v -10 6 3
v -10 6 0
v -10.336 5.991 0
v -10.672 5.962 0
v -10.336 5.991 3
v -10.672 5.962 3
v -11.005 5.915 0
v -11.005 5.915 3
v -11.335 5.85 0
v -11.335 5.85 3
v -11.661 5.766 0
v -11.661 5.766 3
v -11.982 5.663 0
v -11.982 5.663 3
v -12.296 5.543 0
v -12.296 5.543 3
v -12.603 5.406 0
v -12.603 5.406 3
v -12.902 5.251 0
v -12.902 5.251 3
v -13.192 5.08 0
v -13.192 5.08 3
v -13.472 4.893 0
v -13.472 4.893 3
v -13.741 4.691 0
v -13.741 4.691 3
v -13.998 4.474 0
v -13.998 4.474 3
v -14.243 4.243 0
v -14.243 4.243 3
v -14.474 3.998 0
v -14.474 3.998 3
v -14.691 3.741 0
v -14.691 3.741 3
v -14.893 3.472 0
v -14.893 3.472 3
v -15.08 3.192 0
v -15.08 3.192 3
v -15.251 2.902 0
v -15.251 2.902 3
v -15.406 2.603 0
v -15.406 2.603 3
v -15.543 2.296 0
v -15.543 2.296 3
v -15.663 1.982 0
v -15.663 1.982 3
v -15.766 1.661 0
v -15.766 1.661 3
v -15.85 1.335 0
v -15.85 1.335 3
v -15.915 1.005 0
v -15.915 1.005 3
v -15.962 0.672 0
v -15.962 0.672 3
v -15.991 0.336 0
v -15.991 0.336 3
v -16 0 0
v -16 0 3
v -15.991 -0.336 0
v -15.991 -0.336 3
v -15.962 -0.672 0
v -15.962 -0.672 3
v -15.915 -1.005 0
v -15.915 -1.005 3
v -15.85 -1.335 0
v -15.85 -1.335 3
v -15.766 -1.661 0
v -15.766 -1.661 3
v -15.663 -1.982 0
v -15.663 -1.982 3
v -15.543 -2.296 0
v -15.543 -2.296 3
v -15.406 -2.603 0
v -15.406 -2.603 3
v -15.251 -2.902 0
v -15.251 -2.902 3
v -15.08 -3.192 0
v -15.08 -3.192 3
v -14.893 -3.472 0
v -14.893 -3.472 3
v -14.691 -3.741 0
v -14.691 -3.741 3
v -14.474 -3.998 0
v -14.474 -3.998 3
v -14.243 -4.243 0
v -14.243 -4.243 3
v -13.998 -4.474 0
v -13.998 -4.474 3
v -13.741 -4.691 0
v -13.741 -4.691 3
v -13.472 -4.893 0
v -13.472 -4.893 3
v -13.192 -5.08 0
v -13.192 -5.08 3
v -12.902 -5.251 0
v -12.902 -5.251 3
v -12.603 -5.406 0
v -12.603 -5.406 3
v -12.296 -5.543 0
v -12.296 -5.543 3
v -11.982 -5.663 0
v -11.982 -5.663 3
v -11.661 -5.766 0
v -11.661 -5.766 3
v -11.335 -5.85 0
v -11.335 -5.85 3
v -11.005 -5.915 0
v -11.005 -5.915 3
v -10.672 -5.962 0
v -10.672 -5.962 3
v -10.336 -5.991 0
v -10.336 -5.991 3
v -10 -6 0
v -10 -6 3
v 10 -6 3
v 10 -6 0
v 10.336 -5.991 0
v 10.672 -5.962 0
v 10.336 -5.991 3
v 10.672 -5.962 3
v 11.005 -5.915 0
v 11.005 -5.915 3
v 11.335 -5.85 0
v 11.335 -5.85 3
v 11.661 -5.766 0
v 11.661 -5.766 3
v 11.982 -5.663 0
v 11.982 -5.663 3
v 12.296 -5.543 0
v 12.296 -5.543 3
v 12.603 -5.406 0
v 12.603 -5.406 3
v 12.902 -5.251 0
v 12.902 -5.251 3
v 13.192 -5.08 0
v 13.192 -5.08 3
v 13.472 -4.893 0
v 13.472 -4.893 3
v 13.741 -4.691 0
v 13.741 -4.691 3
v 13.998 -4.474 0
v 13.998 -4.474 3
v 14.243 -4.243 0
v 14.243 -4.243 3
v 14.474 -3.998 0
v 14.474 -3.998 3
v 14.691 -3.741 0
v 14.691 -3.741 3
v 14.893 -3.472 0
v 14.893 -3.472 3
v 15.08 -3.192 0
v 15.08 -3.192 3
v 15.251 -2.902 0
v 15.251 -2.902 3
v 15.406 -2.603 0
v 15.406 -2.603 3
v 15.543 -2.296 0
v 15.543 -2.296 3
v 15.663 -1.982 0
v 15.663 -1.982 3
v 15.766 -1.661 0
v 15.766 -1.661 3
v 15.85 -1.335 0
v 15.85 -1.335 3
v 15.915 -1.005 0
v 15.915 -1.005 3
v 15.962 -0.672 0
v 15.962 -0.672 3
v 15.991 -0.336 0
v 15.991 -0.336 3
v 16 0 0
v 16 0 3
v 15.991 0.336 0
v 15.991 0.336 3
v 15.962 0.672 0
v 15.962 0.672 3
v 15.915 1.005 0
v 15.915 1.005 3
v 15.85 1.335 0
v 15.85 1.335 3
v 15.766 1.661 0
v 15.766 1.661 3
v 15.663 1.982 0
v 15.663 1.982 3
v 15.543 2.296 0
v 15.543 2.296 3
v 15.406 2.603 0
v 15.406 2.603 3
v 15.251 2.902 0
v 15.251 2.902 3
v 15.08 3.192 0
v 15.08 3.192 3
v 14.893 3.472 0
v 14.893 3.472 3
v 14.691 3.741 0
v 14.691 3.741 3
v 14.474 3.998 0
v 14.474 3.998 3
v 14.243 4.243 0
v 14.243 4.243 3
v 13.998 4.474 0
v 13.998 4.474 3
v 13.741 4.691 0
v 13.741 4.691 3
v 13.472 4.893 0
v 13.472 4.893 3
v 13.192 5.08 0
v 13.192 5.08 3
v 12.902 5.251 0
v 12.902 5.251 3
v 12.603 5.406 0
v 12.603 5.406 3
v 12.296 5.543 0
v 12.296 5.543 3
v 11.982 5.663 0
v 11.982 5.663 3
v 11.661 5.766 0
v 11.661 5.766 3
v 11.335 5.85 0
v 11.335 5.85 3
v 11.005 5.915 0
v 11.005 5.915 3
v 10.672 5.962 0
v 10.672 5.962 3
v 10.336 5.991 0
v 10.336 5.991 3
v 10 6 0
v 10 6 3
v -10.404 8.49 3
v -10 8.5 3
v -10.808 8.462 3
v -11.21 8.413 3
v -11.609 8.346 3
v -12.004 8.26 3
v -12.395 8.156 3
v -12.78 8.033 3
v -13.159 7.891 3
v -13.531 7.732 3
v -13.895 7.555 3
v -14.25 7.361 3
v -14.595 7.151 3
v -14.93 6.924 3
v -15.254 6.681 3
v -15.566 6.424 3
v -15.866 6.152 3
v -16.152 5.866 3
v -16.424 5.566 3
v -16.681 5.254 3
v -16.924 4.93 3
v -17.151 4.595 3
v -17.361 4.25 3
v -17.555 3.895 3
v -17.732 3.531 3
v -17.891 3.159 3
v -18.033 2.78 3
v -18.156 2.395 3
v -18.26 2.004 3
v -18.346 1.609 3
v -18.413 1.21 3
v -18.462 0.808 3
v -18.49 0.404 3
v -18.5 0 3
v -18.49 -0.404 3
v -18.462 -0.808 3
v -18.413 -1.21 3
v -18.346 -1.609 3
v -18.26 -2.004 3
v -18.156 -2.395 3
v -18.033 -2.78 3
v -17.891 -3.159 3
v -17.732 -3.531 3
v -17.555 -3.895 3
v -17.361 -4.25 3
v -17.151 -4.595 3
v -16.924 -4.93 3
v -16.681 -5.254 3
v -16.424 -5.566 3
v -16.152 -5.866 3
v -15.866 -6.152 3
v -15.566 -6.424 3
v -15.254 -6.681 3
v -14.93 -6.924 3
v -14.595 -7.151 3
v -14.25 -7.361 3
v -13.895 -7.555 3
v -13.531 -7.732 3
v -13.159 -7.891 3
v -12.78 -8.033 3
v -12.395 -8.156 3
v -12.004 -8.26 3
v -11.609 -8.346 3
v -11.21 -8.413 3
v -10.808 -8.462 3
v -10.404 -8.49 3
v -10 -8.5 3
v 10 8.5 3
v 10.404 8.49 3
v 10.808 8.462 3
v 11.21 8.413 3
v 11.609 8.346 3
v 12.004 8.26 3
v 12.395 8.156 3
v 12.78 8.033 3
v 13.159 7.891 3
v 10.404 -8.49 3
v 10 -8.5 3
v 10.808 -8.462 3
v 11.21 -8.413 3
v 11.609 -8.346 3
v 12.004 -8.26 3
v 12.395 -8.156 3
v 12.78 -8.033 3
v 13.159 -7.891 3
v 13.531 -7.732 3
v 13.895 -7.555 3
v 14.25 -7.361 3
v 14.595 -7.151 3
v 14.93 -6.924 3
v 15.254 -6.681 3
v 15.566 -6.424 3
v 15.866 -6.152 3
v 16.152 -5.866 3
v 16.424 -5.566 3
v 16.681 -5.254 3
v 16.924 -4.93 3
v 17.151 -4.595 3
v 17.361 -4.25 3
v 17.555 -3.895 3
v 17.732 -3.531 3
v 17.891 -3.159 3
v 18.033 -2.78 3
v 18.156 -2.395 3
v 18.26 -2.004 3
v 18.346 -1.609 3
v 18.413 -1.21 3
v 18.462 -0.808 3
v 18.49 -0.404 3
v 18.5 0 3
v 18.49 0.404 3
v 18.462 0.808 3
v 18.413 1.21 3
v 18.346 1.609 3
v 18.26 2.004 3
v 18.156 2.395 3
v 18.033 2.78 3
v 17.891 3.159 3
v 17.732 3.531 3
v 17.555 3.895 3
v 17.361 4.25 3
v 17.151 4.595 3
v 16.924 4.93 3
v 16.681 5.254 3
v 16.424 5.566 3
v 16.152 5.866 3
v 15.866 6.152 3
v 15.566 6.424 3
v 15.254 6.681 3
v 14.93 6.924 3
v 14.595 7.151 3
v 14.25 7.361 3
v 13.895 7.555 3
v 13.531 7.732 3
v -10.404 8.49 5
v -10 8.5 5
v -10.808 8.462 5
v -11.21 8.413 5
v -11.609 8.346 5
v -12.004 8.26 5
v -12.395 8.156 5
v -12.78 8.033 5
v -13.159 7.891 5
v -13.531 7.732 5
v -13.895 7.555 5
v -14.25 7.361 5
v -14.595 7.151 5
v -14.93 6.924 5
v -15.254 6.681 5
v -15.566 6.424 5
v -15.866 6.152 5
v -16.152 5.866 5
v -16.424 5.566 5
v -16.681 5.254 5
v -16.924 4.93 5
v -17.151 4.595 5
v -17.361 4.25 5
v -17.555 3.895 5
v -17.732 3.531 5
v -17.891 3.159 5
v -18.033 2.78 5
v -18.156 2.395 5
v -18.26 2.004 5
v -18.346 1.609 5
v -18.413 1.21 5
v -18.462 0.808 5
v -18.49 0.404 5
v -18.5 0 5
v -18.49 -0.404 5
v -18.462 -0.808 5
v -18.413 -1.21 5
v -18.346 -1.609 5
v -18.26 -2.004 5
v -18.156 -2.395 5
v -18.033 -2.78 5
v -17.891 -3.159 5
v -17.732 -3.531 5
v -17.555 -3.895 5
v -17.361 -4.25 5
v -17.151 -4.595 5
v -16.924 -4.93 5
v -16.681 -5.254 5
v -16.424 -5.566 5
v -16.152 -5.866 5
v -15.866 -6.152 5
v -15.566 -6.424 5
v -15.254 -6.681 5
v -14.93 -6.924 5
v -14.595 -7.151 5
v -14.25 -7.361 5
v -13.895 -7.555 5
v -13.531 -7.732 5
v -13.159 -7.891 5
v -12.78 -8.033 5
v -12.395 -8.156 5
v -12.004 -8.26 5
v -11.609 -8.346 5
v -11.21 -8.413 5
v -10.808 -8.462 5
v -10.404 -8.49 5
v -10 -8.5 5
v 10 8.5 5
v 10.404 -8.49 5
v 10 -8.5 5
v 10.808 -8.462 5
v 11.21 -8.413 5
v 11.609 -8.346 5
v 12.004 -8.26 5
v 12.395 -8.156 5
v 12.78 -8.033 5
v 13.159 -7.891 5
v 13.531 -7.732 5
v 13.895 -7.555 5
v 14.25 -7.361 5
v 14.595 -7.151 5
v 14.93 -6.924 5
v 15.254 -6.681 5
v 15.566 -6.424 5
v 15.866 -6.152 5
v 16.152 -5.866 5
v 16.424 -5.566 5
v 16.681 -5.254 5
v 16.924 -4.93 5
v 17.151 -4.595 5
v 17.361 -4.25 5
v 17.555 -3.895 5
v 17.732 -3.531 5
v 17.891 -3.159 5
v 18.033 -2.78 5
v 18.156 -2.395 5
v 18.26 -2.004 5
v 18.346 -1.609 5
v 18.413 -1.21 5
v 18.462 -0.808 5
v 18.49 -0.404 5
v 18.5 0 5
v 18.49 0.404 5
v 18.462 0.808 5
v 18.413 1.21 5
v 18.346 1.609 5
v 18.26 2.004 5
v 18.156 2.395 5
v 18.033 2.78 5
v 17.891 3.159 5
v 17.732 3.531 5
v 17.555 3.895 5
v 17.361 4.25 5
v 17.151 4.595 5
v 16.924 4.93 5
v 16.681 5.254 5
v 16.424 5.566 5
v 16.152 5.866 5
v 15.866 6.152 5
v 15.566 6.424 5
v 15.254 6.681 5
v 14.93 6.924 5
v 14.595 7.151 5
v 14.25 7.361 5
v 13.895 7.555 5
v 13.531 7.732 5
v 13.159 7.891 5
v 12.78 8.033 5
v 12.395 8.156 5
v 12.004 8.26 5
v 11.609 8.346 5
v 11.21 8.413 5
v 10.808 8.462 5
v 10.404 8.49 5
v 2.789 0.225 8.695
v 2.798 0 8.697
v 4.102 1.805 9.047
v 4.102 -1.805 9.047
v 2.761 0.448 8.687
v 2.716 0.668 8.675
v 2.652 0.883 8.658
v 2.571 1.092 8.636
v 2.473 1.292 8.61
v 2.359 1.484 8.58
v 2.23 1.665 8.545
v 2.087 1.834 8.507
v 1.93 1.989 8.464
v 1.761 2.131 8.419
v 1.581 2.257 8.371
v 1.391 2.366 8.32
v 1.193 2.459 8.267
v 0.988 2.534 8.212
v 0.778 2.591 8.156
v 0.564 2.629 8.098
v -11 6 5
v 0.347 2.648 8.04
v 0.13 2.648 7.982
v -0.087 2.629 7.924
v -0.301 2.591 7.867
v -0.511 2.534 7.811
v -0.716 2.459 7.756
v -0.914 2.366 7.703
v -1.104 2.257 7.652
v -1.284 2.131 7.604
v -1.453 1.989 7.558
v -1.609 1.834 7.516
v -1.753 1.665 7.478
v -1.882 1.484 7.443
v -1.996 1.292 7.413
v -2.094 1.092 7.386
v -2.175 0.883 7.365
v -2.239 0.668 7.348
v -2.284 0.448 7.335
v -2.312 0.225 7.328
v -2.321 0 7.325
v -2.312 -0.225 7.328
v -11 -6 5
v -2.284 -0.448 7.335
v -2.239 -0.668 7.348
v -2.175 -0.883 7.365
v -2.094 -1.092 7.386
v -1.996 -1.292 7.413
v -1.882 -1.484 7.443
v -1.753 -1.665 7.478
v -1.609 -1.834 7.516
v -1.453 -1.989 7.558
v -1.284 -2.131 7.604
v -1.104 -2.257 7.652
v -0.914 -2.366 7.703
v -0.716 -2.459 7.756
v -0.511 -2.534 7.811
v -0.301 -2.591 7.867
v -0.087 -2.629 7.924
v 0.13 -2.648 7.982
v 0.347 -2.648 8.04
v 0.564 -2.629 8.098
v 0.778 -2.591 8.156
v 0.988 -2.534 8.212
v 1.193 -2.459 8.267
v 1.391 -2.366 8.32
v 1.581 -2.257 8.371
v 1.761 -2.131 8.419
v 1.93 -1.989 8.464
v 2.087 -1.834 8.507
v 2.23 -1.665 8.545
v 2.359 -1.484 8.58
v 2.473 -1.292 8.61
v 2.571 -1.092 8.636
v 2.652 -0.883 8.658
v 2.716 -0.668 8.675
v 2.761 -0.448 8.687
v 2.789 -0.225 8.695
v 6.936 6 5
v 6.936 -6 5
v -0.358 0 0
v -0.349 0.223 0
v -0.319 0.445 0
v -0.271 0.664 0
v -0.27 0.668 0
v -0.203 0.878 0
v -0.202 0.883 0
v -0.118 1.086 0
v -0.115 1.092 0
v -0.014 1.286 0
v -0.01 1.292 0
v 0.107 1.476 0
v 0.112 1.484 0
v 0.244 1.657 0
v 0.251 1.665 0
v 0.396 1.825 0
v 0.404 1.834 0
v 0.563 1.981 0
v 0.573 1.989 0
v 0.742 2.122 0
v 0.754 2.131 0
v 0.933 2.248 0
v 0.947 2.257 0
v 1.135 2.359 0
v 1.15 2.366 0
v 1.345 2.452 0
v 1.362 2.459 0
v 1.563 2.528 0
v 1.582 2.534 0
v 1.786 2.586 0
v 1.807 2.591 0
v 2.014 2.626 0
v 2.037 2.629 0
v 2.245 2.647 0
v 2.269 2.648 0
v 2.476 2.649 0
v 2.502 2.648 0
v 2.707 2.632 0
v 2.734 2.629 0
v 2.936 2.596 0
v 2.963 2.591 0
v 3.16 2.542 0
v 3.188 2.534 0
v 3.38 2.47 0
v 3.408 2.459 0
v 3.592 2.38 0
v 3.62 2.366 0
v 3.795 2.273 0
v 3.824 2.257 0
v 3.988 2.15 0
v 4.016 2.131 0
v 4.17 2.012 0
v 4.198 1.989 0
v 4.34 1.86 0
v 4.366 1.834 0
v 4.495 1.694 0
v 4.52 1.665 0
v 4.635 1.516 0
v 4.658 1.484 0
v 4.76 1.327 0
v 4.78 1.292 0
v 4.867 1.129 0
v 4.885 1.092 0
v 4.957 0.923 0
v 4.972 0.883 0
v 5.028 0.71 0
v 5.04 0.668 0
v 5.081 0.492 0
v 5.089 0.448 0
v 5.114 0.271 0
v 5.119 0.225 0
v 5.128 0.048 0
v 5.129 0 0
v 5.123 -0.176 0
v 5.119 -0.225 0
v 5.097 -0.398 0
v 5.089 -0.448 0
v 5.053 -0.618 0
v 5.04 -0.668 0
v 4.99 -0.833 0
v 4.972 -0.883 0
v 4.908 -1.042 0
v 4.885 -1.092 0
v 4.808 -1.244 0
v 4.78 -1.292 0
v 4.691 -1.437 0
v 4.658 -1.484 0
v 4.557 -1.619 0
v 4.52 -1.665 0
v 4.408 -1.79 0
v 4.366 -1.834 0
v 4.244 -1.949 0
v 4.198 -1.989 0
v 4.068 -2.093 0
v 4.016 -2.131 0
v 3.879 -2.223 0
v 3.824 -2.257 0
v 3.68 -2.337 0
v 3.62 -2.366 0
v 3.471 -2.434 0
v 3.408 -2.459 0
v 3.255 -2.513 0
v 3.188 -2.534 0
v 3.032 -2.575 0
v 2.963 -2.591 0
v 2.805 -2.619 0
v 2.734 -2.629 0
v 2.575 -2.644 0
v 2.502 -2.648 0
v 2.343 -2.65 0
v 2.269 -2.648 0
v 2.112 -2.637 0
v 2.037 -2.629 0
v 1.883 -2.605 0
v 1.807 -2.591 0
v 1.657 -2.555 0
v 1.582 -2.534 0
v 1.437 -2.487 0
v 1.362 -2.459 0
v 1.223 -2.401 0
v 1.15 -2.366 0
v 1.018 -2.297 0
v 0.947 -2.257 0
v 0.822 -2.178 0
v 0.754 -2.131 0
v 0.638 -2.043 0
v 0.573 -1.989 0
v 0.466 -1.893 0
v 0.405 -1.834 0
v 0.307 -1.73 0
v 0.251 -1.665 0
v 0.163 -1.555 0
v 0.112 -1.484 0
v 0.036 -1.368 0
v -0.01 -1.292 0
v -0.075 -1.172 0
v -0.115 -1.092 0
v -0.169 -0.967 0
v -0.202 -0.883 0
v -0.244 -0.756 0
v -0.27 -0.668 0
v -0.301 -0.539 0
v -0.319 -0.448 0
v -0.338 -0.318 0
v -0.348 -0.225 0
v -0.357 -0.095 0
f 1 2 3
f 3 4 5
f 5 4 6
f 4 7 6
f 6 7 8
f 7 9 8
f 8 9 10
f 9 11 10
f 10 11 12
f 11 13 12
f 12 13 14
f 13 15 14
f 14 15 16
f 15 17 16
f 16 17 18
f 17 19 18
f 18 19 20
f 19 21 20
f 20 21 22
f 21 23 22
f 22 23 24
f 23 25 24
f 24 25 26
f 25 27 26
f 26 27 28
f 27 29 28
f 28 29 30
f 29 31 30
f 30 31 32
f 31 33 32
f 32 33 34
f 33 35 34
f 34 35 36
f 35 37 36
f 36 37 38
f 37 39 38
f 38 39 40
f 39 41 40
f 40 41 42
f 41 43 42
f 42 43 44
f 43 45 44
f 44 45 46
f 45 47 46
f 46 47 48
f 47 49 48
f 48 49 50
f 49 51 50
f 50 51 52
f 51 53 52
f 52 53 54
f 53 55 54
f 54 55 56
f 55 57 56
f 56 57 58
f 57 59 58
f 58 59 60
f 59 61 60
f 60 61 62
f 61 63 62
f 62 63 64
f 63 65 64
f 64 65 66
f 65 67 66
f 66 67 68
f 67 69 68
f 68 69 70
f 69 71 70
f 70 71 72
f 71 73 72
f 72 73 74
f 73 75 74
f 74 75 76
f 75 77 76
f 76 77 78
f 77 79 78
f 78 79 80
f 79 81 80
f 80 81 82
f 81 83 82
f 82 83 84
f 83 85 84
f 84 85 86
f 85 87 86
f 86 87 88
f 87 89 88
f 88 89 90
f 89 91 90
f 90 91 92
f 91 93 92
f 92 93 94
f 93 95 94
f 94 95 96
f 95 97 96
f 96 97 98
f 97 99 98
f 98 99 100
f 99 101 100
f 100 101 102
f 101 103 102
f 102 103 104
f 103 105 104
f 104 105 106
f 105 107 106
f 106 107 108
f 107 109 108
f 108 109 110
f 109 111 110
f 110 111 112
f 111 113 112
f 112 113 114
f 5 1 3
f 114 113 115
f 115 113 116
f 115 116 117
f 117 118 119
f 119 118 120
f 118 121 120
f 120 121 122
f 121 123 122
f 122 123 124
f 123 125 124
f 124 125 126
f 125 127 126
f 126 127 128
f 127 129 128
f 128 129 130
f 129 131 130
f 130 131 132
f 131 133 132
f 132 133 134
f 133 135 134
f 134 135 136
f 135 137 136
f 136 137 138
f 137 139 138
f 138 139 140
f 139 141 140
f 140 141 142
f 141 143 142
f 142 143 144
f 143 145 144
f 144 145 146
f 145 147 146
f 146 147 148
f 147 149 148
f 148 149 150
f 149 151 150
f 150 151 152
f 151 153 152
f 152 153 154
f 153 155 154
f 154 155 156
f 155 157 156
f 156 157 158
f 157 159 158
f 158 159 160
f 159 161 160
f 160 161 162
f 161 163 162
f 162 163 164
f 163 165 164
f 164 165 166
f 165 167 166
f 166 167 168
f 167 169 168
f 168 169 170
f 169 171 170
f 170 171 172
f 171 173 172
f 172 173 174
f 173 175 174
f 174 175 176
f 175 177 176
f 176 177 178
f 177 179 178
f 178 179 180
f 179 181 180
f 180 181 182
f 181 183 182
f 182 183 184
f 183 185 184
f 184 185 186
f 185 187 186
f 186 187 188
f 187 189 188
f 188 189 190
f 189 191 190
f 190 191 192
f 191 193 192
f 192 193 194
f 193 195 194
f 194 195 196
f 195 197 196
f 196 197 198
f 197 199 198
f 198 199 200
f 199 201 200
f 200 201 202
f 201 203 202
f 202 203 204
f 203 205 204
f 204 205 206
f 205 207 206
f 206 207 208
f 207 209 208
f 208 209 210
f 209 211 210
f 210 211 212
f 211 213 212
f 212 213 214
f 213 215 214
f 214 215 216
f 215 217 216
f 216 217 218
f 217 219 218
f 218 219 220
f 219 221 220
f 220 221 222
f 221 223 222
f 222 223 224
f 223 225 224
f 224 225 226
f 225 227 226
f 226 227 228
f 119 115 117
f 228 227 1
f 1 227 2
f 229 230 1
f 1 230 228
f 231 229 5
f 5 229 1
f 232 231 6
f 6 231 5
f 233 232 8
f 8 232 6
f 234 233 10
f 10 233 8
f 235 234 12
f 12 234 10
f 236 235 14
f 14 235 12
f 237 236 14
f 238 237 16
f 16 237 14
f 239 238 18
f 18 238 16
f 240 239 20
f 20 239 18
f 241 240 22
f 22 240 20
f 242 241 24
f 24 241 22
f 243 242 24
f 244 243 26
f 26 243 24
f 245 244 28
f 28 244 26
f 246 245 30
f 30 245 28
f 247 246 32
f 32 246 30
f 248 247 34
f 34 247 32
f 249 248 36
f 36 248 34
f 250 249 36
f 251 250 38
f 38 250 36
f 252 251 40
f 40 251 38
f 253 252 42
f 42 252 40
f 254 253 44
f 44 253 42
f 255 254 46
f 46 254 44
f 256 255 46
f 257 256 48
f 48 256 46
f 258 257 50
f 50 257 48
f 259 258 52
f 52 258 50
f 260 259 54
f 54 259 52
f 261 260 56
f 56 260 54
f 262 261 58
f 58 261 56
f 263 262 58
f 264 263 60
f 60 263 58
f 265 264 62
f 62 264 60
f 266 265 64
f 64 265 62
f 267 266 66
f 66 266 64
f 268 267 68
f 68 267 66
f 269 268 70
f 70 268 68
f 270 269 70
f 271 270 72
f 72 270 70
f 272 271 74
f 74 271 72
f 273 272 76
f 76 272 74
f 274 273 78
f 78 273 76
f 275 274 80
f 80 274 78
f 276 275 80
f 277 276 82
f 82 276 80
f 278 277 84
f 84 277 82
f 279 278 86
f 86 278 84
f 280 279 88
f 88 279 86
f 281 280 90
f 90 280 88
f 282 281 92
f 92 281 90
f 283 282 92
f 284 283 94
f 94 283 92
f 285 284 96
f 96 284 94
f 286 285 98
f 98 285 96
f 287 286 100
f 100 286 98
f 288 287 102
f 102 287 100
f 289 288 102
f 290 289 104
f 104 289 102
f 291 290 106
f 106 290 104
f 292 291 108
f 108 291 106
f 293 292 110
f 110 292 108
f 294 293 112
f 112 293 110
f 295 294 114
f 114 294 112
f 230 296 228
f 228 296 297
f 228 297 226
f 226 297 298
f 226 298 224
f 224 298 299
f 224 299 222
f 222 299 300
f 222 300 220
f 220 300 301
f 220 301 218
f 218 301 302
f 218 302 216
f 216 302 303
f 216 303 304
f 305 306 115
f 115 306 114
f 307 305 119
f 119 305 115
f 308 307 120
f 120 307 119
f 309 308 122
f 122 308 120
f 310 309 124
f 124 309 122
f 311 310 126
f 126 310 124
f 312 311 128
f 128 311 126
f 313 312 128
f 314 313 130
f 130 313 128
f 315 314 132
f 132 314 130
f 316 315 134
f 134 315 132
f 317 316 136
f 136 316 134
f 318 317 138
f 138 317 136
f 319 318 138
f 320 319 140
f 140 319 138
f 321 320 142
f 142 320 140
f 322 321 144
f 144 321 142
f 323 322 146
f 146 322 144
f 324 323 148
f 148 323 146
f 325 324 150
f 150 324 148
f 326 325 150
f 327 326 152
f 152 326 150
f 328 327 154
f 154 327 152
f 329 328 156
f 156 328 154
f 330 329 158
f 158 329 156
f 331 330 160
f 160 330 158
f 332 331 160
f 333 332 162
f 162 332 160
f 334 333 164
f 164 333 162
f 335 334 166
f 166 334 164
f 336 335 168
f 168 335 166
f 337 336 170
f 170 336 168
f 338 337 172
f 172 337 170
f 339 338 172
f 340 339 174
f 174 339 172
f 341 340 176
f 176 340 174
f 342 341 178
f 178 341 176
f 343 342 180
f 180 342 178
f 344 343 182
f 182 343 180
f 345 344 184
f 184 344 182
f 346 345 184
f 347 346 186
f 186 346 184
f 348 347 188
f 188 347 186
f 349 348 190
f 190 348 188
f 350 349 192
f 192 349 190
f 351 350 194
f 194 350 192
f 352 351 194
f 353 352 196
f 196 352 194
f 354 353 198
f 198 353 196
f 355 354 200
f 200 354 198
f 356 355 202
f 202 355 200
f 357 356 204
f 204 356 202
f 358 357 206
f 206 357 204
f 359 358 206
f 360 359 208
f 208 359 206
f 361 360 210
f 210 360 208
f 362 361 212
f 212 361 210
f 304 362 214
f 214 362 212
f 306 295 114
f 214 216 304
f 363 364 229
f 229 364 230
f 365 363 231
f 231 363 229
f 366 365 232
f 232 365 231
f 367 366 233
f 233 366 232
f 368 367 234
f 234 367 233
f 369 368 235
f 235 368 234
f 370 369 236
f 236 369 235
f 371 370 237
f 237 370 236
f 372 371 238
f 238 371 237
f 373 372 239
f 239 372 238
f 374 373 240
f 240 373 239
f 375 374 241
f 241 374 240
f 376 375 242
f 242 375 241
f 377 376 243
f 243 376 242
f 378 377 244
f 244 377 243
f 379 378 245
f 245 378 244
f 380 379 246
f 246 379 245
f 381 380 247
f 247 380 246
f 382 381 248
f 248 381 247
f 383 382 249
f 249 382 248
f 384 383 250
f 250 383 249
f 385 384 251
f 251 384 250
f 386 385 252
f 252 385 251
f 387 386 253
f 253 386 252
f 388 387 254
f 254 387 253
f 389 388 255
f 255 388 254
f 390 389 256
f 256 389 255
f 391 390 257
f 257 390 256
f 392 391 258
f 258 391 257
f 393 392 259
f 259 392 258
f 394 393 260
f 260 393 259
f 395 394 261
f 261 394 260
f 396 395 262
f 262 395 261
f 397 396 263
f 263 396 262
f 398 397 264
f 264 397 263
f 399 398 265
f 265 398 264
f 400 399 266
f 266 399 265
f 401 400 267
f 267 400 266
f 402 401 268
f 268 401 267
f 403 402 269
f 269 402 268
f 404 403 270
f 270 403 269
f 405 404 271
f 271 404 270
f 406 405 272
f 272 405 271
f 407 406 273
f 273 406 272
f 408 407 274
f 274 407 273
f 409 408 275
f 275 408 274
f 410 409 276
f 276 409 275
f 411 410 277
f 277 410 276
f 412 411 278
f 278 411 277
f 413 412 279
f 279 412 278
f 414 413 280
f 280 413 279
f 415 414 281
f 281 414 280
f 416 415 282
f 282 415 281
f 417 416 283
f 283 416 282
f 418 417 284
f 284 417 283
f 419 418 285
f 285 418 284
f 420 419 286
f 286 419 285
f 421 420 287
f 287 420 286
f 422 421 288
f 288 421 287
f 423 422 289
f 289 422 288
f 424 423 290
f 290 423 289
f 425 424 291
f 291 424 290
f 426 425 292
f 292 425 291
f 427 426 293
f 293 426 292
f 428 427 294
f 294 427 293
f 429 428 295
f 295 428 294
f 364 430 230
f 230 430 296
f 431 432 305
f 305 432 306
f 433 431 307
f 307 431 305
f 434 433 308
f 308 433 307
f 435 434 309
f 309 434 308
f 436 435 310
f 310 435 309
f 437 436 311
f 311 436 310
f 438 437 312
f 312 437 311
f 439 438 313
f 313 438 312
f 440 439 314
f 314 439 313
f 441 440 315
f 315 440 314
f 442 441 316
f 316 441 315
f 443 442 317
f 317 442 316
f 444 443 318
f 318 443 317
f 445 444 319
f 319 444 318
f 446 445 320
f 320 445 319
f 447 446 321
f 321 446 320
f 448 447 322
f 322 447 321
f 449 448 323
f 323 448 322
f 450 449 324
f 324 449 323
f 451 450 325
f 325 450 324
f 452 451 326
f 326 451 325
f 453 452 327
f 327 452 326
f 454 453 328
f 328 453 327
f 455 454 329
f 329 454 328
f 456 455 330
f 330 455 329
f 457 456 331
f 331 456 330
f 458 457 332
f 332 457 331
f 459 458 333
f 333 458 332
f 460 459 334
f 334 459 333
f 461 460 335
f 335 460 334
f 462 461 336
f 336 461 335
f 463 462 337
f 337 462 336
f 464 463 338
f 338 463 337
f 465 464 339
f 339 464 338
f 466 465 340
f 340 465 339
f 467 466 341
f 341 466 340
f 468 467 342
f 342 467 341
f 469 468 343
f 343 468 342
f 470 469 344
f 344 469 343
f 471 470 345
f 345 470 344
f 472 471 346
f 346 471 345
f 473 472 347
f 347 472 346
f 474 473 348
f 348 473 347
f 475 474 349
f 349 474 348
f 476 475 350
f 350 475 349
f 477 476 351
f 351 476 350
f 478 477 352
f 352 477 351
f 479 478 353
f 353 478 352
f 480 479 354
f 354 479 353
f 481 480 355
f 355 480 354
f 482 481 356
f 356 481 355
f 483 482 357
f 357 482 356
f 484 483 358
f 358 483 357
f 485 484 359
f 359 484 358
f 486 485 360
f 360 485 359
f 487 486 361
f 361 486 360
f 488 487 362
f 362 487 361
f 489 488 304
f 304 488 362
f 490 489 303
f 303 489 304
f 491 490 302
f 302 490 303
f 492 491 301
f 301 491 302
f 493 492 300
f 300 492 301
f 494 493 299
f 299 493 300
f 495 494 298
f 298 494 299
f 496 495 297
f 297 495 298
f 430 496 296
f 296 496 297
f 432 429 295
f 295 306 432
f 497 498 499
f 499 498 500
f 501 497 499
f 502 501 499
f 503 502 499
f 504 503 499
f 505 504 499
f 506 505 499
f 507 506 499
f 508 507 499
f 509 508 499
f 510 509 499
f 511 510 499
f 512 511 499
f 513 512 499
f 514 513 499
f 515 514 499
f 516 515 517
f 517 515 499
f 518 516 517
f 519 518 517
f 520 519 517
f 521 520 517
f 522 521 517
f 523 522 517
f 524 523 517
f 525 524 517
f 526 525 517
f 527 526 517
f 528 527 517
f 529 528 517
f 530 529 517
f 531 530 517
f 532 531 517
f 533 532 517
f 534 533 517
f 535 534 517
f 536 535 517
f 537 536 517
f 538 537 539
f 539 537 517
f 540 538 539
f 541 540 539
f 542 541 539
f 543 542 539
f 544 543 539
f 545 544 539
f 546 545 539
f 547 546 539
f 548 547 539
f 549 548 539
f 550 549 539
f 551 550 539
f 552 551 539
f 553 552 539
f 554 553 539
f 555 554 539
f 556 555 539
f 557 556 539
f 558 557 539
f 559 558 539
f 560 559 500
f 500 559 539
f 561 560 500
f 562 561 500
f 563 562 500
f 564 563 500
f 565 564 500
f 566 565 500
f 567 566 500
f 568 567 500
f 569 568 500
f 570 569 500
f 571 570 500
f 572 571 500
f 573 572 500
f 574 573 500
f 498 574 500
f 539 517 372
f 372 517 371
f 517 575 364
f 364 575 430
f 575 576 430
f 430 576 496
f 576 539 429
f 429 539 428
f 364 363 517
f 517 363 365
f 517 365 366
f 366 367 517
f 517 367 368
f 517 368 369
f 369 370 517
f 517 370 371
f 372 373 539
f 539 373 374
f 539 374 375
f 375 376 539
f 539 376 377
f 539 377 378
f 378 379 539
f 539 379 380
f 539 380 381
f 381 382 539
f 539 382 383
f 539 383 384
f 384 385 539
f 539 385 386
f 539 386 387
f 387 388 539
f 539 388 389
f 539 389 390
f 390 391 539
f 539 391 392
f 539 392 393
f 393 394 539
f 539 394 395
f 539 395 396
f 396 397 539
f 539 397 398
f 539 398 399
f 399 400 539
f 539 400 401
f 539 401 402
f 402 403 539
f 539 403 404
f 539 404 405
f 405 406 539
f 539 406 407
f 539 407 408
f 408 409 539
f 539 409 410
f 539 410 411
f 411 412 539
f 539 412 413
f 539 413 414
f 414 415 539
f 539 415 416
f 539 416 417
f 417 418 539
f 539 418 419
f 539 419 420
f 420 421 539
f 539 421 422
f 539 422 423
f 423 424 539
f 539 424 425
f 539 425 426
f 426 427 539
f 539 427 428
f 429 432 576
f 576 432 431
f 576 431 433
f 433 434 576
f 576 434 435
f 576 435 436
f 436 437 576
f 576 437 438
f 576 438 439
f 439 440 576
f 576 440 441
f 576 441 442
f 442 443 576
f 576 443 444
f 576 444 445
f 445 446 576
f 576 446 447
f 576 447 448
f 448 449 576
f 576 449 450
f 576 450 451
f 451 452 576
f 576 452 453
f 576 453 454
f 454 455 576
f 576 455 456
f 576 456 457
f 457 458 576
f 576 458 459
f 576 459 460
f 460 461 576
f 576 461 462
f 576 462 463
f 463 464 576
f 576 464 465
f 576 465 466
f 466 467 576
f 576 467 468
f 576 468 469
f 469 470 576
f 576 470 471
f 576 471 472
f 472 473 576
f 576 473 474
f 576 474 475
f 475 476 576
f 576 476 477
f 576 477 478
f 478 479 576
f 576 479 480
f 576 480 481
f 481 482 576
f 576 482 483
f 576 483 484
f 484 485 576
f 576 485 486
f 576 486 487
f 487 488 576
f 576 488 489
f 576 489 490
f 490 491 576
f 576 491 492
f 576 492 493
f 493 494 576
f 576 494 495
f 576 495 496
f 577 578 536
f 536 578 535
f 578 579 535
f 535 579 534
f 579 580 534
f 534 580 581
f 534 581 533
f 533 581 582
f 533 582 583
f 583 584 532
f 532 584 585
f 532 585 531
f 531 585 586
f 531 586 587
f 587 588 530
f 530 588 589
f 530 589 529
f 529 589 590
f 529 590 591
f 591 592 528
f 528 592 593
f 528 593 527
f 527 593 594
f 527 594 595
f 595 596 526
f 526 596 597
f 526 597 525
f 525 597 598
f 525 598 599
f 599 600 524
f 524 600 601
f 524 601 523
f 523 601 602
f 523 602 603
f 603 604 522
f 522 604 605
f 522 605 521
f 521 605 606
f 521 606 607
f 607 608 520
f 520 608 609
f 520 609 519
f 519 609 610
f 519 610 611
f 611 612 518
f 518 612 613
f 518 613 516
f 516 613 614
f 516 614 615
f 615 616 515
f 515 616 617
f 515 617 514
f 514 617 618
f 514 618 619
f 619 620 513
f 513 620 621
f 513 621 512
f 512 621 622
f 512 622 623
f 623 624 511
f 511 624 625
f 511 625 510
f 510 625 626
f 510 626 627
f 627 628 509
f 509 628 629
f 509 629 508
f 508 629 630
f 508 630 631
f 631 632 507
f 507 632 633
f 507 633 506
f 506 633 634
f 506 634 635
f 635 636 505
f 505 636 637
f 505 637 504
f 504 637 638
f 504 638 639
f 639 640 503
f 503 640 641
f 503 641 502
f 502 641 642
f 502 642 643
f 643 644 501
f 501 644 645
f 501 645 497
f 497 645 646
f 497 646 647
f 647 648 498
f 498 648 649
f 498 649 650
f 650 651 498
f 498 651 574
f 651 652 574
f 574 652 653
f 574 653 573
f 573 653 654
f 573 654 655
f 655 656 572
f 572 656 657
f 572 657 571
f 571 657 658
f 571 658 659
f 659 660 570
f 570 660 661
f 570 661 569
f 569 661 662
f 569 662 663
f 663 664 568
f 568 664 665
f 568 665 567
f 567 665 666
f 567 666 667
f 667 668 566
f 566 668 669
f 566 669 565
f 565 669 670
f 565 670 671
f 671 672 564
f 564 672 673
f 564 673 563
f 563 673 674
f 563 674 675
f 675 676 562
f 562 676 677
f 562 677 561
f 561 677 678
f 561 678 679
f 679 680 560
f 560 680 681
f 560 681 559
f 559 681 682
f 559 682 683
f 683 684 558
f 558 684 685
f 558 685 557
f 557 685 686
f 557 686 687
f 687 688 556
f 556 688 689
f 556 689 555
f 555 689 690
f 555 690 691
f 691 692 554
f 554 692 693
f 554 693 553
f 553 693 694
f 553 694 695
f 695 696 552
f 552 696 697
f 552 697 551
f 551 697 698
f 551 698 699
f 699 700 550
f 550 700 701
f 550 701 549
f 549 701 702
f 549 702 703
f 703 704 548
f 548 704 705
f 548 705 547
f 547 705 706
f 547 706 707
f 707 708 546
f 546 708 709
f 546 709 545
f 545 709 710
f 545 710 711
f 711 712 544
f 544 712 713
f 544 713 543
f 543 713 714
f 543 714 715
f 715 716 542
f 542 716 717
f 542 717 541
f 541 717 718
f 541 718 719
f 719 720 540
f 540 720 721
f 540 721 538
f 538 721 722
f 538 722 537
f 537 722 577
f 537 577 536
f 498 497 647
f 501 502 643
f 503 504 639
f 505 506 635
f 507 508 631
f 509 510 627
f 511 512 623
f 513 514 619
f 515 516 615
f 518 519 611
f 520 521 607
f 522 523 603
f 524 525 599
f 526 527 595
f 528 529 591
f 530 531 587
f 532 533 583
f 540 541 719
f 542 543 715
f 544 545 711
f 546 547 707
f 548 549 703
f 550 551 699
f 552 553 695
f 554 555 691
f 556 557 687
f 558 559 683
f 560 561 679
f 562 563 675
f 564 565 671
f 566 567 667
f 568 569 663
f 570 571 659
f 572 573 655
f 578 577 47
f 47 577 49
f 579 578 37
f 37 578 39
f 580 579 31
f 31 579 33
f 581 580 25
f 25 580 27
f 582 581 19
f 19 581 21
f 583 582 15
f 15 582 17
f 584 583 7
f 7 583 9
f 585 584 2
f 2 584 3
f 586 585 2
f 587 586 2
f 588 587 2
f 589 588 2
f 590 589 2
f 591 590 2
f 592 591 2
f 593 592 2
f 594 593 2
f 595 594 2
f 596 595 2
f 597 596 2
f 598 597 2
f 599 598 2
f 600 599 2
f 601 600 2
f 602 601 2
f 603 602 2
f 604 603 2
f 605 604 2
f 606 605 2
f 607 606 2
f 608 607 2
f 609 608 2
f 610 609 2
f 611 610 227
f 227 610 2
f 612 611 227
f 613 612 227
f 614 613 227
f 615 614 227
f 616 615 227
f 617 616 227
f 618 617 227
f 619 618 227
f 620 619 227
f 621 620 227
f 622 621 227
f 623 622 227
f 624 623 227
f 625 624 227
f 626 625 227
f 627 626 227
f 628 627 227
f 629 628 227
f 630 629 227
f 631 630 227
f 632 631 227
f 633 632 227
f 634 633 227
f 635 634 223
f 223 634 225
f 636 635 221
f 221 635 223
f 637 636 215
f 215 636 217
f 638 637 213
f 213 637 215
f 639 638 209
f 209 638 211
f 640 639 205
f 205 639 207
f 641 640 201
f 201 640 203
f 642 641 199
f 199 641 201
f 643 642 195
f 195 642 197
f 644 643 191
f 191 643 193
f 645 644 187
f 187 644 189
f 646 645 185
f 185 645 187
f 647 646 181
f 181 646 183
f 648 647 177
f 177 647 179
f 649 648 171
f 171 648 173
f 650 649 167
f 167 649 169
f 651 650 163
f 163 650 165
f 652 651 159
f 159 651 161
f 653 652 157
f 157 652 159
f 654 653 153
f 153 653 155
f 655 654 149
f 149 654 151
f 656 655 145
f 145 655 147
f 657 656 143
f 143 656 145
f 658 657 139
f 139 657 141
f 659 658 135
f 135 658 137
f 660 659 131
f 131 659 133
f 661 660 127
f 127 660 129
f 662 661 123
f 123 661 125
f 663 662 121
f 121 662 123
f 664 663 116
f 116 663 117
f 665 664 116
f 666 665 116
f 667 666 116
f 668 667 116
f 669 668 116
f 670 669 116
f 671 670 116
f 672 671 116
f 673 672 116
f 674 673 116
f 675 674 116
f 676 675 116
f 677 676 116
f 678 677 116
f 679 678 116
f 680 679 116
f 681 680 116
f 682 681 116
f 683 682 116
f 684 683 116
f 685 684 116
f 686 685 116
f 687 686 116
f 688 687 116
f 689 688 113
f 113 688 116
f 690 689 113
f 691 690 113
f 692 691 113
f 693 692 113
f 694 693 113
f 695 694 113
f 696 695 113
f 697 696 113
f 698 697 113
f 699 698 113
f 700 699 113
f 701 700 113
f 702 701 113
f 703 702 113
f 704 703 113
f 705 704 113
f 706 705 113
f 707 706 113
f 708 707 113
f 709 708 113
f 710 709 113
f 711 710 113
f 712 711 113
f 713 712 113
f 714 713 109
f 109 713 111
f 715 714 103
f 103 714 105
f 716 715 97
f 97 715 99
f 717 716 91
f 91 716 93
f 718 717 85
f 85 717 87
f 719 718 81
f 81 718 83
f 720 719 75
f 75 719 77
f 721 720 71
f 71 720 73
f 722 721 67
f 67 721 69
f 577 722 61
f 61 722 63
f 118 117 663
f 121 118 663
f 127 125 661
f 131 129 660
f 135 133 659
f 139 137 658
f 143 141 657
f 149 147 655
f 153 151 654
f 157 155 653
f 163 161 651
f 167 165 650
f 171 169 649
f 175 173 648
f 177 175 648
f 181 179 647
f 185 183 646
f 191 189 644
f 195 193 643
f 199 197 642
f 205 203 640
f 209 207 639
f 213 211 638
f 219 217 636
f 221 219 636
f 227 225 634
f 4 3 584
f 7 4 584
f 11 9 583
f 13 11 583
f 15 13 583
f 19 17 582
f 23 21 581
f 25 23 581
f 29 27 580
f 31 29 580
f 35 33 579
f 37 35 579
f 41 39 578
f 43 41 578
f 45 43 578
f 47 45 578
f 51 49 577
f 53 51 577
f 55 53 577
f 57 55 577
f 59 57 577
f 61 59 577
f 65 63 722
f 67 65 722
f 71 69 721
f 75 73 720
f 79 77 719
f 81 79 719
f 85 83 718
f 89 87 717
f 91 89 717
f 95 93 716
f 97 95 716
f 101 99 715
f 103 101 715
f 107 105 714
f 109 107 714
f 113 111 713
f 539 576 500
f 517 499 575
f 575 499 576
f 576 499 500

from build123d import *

# Parameters (mm, degrees)
BOSS_EXTRUDE1_DEPTH             = 5
BOSS_EXTRUDE2_REACH             = 19.804
BOSS_EXTRUDE2_DIRECTION_2_REACH = 19.804
BOSS_EXTRUDE3_DEPTH             = 2
SKETCH4_R                       = 2.65
CUT_EXTRUDE1_DEPTH              = 29.091194779
SKETCH9_W                       = 64.865756982
SKETCH9_H                       = 28.956889813
CUT_EXTRUDE2_DEPTH              = 32.5
CUT_EXTRUDE3_DEPTH              = 29.618053883
CHAMFER3_SIZE                   = 3
CHAMFER3_SIZE_2                 = 4.914912266


with BuildPart() as part:
    # Sketch2 → Boss-Extrude1 (new, symmetric)
    with BuildSketch(Plane.XY):
        with BuildLine():
            Line((-10, 6), (10, 6))
            ThreePointArc((10, 6), (16, 0), (10, -6))
            Line((10, -6), (-10, -6))
            ThreePointArc((-10, -6), (-16, 0), (-10, 6))
        make_face()
    extrude(amount=BOSS_EXTRUDE1_DEPTH, both=True)

    # Boss-Extrude2: up to this face of the body (flat: up to its plane)
    boss_extrude2_end = Plane(part.part.faces().sort_by_distance((0, 6, 0))[0])
    # Sketch3 → Boss-Extrude2 (add, up to the picked face)
    with BuildSketch(Plane(origin=(0, 0, 0), x_dir=(1, 0, 0), z_dir=(0, 1, 0)), mode=Mode.PRIVATE) as boss_extrude2_sk1:
        Polygon((-5, 5), (-5, 9.823085464), (13, 5), align=None)
    boss_extrude2_tool1 = split(extrude(boss_extrude2_sk1.sketch, amount=BOSS_EXTRUDE2_REACH, mode=Mode.PRIVATE), bisect_by=boss_extrude2_end, keep=Keep.BOTH, mode=Mode.PRIVATE)
    # Sketch3 → Boss-Extrude2 (add, up to the picked face)
    with BuildSketch(Plane(origin=(0, 0, 0), x_dir=(1, 0, 0), z_dir=(0, 1, 0)), mode=Mode.PRIVATE) as boss_extrude2_sk2:
        Polygon((-11, -5), (7, -9.823085464), (7, -5), align=None)
    boss_extrude2_tool2 = split(extrude(boss_extrude2_sk2.sketch, amount=BOSS_EXTRUDE2_REACH, mode=Mode.PRIVATE), bisect_by=boss_extrude2_end, keep=Keep.BOTH, mode=Mode.PRIVATE)
    add(boss_extrude2_tool1.solids().sort_by(Axis((1, 0, -6.607695), (0, 1, 0)))[0])
    add(boss_extrude2_tool2.solids().sort_by(Axis((1, 0, 6.607695), (0, 1, 0)))[0])

    # Boss-Extrude2 direction 2: up to this face of the body (flat: up to its plane)
    boss_extrude2_direction_2_end = Plane(part.part.faces().sort_by_distance((0, -6, 0))[0])
    # Sketch3 → Boss-Extrude2 direction 2 (add, up to the picked face)
    with BuildSketch(Plane(origin=(0, 0, 0), x_dir=(1, 0, 0), z_dir=(0, 1, 0)), mode=Mode.PRIVATE) as boss_extrude2_direction_2_sk1:
        Polygon((-5, 5), (-5, 9.823085464), (13, 5), align=None)
    boss_extrude2_direction_2_tool1 = split(extrude(boss_extrude2_direction_2_sk1.sketch, amount=-BOSS_EXTRUDE2_DIRECTION_2_REACH, mode=Mode.PRIVATE), bisect_by=boss_extrude2_direction_2_end, keep=Keep.BOTH, mode=Mode.PRIVATE)
    # Sketch3 → Boss-Extrude2 direction 2 (add, up to the picked face)
    with BuildSketch(Plane(origin=(0, 0, 0), x_dir=(1, 0, 0), z_dir=(0, 1, 0)), mode=Mode.PRIVATE) as boss_extrude2_direction_2_sk2:
        Polygon((-11, -5), (7, -9.823085464), (7, -5), align=None)
    boss_extrude2_direction_2_tool2 = split(extrude(boss_extrude2_direction_2_sk2.sketch, amount=-BOSS_EXTRUDE2_DIRECTION_2_REACH, mode=Mode.PRIVATE), bisect_by=boss_extrude2_direction_2_end, keep=Keep.BOTH, mode=Mode.PRIVATE)
    add(boss_extrude2_direction_2_tool1.solids().sort_by(Axis((1, 0, -6.607695), (0, -1, 0)))[0])
    add(boss_extrude2_direction_2_tool2.solids().sort_by(Axis((1, 0, 6.607695), (0, -1, 0)))[0])

    # Sketch8 → Boss-Extrude3 (add)
    with BuildSketch(Plane.XY.offset(5)):
        with BuildLine():
            Line((-10, 8.5), (10, 8.5))
            ThreePointArc((10, 8.5), (18.5, 0), (10, -8.5))
            Line((10, -8.5), (-10, -8.5))
            ThreePointArc((-10, -8.5), (-18.5, 0), (-10, 8.5))
        make_face()
    boss_extrude3 = extrude(amount=-BOSS_EXTRUDE3_DEPTH)

    # Mirror1: Boss-Extrude3 across plane
    add(boss_extrude3.mirror(Plane.XY))

    # Sketch4 → Cut-Extrude1 (cut, through all)
    with BuildSketch(Plane(origin=(-1.986860279, 0, 7.415063509), x_dir=(0.96592582628907, 0, 0.25881904510251436), z_dir=(-0.25881904510251436, 0, 0.96592582628907))):
        with Locations((2.303882384, 0)):
            Circle(SKETCH4_R)
    extrude(amount=-CUT_EXTRUDE1_DEPTH, mode=Mode.SUBTRACT)

    # Sketch9 → Cut-Extrude2 (cut, symmetric)
    with BuildSketch(Plane(origin=(0, 0, 0), x_dir=(1, 0, 0), z_dir=(0, 1, 0))):
        with Locations((0.241735823, 14.478444907)):
            Rectangle(SKETCH9_W, SKETCH9_H)
    extrude(amount=CUT_EXTRUDE2_DEPTH, both=True, mode=Mode.SUBTRACT)

    # Sketch10 → Cut-Extrude3 (cut, through all)
    with BuildSketch(Plane(origin=(7, 0, 0), x_dir=(0, 0, -1), z_dir=(1, 0, 0))):
        Polygon((-5, 6), (-9.823085464, 1), (-9.823085464, -1), (-5, -6), (-15.161694792, -6), (-15.161694792, 6), align=None)
    extrude(amount=-CUT_EXTRUDE3_DEPTH, mode=Mode.SUBTRACT)

    # Chamfer3
    # the kernel refuses this chamfer: 4.914912266, 3 mm, written as the material it takes off along each edge
    with BuildSketch(Plane(origin=(7, 13.693017634, 9.823085464), x_dir=(-0.9797390561393613, 0, -0.2002782611147635), z_dir=(0, -1, 0))) as chamfer3_piece_1_section:
        Polygon((CHAMFER3_SIZE * 0.998191085646, CHAMFER3_SIZE * 0.0601211821046), (CHAMFER3_SIZE_2 * 0.200278261104, CHAMFER3_SIZE_2 * 0.979739056086), (0, 0), align=None)
    chamfer3_piece_1 = extrude(amount=27.386035267, mode=Mode.PRIVATE)
    chamfer3_piece_1 = split(chamfer3_piece_1, bisect_by=Plane(origin=(6.06140933, 0, 5), z_dir=(0, 0, 1)), keep=Keep.TOP, mode=Mode.PRIVATE)
    add(chamfer3_piece_1, mode=Mode.SUBTRACT)


solid = part.part
